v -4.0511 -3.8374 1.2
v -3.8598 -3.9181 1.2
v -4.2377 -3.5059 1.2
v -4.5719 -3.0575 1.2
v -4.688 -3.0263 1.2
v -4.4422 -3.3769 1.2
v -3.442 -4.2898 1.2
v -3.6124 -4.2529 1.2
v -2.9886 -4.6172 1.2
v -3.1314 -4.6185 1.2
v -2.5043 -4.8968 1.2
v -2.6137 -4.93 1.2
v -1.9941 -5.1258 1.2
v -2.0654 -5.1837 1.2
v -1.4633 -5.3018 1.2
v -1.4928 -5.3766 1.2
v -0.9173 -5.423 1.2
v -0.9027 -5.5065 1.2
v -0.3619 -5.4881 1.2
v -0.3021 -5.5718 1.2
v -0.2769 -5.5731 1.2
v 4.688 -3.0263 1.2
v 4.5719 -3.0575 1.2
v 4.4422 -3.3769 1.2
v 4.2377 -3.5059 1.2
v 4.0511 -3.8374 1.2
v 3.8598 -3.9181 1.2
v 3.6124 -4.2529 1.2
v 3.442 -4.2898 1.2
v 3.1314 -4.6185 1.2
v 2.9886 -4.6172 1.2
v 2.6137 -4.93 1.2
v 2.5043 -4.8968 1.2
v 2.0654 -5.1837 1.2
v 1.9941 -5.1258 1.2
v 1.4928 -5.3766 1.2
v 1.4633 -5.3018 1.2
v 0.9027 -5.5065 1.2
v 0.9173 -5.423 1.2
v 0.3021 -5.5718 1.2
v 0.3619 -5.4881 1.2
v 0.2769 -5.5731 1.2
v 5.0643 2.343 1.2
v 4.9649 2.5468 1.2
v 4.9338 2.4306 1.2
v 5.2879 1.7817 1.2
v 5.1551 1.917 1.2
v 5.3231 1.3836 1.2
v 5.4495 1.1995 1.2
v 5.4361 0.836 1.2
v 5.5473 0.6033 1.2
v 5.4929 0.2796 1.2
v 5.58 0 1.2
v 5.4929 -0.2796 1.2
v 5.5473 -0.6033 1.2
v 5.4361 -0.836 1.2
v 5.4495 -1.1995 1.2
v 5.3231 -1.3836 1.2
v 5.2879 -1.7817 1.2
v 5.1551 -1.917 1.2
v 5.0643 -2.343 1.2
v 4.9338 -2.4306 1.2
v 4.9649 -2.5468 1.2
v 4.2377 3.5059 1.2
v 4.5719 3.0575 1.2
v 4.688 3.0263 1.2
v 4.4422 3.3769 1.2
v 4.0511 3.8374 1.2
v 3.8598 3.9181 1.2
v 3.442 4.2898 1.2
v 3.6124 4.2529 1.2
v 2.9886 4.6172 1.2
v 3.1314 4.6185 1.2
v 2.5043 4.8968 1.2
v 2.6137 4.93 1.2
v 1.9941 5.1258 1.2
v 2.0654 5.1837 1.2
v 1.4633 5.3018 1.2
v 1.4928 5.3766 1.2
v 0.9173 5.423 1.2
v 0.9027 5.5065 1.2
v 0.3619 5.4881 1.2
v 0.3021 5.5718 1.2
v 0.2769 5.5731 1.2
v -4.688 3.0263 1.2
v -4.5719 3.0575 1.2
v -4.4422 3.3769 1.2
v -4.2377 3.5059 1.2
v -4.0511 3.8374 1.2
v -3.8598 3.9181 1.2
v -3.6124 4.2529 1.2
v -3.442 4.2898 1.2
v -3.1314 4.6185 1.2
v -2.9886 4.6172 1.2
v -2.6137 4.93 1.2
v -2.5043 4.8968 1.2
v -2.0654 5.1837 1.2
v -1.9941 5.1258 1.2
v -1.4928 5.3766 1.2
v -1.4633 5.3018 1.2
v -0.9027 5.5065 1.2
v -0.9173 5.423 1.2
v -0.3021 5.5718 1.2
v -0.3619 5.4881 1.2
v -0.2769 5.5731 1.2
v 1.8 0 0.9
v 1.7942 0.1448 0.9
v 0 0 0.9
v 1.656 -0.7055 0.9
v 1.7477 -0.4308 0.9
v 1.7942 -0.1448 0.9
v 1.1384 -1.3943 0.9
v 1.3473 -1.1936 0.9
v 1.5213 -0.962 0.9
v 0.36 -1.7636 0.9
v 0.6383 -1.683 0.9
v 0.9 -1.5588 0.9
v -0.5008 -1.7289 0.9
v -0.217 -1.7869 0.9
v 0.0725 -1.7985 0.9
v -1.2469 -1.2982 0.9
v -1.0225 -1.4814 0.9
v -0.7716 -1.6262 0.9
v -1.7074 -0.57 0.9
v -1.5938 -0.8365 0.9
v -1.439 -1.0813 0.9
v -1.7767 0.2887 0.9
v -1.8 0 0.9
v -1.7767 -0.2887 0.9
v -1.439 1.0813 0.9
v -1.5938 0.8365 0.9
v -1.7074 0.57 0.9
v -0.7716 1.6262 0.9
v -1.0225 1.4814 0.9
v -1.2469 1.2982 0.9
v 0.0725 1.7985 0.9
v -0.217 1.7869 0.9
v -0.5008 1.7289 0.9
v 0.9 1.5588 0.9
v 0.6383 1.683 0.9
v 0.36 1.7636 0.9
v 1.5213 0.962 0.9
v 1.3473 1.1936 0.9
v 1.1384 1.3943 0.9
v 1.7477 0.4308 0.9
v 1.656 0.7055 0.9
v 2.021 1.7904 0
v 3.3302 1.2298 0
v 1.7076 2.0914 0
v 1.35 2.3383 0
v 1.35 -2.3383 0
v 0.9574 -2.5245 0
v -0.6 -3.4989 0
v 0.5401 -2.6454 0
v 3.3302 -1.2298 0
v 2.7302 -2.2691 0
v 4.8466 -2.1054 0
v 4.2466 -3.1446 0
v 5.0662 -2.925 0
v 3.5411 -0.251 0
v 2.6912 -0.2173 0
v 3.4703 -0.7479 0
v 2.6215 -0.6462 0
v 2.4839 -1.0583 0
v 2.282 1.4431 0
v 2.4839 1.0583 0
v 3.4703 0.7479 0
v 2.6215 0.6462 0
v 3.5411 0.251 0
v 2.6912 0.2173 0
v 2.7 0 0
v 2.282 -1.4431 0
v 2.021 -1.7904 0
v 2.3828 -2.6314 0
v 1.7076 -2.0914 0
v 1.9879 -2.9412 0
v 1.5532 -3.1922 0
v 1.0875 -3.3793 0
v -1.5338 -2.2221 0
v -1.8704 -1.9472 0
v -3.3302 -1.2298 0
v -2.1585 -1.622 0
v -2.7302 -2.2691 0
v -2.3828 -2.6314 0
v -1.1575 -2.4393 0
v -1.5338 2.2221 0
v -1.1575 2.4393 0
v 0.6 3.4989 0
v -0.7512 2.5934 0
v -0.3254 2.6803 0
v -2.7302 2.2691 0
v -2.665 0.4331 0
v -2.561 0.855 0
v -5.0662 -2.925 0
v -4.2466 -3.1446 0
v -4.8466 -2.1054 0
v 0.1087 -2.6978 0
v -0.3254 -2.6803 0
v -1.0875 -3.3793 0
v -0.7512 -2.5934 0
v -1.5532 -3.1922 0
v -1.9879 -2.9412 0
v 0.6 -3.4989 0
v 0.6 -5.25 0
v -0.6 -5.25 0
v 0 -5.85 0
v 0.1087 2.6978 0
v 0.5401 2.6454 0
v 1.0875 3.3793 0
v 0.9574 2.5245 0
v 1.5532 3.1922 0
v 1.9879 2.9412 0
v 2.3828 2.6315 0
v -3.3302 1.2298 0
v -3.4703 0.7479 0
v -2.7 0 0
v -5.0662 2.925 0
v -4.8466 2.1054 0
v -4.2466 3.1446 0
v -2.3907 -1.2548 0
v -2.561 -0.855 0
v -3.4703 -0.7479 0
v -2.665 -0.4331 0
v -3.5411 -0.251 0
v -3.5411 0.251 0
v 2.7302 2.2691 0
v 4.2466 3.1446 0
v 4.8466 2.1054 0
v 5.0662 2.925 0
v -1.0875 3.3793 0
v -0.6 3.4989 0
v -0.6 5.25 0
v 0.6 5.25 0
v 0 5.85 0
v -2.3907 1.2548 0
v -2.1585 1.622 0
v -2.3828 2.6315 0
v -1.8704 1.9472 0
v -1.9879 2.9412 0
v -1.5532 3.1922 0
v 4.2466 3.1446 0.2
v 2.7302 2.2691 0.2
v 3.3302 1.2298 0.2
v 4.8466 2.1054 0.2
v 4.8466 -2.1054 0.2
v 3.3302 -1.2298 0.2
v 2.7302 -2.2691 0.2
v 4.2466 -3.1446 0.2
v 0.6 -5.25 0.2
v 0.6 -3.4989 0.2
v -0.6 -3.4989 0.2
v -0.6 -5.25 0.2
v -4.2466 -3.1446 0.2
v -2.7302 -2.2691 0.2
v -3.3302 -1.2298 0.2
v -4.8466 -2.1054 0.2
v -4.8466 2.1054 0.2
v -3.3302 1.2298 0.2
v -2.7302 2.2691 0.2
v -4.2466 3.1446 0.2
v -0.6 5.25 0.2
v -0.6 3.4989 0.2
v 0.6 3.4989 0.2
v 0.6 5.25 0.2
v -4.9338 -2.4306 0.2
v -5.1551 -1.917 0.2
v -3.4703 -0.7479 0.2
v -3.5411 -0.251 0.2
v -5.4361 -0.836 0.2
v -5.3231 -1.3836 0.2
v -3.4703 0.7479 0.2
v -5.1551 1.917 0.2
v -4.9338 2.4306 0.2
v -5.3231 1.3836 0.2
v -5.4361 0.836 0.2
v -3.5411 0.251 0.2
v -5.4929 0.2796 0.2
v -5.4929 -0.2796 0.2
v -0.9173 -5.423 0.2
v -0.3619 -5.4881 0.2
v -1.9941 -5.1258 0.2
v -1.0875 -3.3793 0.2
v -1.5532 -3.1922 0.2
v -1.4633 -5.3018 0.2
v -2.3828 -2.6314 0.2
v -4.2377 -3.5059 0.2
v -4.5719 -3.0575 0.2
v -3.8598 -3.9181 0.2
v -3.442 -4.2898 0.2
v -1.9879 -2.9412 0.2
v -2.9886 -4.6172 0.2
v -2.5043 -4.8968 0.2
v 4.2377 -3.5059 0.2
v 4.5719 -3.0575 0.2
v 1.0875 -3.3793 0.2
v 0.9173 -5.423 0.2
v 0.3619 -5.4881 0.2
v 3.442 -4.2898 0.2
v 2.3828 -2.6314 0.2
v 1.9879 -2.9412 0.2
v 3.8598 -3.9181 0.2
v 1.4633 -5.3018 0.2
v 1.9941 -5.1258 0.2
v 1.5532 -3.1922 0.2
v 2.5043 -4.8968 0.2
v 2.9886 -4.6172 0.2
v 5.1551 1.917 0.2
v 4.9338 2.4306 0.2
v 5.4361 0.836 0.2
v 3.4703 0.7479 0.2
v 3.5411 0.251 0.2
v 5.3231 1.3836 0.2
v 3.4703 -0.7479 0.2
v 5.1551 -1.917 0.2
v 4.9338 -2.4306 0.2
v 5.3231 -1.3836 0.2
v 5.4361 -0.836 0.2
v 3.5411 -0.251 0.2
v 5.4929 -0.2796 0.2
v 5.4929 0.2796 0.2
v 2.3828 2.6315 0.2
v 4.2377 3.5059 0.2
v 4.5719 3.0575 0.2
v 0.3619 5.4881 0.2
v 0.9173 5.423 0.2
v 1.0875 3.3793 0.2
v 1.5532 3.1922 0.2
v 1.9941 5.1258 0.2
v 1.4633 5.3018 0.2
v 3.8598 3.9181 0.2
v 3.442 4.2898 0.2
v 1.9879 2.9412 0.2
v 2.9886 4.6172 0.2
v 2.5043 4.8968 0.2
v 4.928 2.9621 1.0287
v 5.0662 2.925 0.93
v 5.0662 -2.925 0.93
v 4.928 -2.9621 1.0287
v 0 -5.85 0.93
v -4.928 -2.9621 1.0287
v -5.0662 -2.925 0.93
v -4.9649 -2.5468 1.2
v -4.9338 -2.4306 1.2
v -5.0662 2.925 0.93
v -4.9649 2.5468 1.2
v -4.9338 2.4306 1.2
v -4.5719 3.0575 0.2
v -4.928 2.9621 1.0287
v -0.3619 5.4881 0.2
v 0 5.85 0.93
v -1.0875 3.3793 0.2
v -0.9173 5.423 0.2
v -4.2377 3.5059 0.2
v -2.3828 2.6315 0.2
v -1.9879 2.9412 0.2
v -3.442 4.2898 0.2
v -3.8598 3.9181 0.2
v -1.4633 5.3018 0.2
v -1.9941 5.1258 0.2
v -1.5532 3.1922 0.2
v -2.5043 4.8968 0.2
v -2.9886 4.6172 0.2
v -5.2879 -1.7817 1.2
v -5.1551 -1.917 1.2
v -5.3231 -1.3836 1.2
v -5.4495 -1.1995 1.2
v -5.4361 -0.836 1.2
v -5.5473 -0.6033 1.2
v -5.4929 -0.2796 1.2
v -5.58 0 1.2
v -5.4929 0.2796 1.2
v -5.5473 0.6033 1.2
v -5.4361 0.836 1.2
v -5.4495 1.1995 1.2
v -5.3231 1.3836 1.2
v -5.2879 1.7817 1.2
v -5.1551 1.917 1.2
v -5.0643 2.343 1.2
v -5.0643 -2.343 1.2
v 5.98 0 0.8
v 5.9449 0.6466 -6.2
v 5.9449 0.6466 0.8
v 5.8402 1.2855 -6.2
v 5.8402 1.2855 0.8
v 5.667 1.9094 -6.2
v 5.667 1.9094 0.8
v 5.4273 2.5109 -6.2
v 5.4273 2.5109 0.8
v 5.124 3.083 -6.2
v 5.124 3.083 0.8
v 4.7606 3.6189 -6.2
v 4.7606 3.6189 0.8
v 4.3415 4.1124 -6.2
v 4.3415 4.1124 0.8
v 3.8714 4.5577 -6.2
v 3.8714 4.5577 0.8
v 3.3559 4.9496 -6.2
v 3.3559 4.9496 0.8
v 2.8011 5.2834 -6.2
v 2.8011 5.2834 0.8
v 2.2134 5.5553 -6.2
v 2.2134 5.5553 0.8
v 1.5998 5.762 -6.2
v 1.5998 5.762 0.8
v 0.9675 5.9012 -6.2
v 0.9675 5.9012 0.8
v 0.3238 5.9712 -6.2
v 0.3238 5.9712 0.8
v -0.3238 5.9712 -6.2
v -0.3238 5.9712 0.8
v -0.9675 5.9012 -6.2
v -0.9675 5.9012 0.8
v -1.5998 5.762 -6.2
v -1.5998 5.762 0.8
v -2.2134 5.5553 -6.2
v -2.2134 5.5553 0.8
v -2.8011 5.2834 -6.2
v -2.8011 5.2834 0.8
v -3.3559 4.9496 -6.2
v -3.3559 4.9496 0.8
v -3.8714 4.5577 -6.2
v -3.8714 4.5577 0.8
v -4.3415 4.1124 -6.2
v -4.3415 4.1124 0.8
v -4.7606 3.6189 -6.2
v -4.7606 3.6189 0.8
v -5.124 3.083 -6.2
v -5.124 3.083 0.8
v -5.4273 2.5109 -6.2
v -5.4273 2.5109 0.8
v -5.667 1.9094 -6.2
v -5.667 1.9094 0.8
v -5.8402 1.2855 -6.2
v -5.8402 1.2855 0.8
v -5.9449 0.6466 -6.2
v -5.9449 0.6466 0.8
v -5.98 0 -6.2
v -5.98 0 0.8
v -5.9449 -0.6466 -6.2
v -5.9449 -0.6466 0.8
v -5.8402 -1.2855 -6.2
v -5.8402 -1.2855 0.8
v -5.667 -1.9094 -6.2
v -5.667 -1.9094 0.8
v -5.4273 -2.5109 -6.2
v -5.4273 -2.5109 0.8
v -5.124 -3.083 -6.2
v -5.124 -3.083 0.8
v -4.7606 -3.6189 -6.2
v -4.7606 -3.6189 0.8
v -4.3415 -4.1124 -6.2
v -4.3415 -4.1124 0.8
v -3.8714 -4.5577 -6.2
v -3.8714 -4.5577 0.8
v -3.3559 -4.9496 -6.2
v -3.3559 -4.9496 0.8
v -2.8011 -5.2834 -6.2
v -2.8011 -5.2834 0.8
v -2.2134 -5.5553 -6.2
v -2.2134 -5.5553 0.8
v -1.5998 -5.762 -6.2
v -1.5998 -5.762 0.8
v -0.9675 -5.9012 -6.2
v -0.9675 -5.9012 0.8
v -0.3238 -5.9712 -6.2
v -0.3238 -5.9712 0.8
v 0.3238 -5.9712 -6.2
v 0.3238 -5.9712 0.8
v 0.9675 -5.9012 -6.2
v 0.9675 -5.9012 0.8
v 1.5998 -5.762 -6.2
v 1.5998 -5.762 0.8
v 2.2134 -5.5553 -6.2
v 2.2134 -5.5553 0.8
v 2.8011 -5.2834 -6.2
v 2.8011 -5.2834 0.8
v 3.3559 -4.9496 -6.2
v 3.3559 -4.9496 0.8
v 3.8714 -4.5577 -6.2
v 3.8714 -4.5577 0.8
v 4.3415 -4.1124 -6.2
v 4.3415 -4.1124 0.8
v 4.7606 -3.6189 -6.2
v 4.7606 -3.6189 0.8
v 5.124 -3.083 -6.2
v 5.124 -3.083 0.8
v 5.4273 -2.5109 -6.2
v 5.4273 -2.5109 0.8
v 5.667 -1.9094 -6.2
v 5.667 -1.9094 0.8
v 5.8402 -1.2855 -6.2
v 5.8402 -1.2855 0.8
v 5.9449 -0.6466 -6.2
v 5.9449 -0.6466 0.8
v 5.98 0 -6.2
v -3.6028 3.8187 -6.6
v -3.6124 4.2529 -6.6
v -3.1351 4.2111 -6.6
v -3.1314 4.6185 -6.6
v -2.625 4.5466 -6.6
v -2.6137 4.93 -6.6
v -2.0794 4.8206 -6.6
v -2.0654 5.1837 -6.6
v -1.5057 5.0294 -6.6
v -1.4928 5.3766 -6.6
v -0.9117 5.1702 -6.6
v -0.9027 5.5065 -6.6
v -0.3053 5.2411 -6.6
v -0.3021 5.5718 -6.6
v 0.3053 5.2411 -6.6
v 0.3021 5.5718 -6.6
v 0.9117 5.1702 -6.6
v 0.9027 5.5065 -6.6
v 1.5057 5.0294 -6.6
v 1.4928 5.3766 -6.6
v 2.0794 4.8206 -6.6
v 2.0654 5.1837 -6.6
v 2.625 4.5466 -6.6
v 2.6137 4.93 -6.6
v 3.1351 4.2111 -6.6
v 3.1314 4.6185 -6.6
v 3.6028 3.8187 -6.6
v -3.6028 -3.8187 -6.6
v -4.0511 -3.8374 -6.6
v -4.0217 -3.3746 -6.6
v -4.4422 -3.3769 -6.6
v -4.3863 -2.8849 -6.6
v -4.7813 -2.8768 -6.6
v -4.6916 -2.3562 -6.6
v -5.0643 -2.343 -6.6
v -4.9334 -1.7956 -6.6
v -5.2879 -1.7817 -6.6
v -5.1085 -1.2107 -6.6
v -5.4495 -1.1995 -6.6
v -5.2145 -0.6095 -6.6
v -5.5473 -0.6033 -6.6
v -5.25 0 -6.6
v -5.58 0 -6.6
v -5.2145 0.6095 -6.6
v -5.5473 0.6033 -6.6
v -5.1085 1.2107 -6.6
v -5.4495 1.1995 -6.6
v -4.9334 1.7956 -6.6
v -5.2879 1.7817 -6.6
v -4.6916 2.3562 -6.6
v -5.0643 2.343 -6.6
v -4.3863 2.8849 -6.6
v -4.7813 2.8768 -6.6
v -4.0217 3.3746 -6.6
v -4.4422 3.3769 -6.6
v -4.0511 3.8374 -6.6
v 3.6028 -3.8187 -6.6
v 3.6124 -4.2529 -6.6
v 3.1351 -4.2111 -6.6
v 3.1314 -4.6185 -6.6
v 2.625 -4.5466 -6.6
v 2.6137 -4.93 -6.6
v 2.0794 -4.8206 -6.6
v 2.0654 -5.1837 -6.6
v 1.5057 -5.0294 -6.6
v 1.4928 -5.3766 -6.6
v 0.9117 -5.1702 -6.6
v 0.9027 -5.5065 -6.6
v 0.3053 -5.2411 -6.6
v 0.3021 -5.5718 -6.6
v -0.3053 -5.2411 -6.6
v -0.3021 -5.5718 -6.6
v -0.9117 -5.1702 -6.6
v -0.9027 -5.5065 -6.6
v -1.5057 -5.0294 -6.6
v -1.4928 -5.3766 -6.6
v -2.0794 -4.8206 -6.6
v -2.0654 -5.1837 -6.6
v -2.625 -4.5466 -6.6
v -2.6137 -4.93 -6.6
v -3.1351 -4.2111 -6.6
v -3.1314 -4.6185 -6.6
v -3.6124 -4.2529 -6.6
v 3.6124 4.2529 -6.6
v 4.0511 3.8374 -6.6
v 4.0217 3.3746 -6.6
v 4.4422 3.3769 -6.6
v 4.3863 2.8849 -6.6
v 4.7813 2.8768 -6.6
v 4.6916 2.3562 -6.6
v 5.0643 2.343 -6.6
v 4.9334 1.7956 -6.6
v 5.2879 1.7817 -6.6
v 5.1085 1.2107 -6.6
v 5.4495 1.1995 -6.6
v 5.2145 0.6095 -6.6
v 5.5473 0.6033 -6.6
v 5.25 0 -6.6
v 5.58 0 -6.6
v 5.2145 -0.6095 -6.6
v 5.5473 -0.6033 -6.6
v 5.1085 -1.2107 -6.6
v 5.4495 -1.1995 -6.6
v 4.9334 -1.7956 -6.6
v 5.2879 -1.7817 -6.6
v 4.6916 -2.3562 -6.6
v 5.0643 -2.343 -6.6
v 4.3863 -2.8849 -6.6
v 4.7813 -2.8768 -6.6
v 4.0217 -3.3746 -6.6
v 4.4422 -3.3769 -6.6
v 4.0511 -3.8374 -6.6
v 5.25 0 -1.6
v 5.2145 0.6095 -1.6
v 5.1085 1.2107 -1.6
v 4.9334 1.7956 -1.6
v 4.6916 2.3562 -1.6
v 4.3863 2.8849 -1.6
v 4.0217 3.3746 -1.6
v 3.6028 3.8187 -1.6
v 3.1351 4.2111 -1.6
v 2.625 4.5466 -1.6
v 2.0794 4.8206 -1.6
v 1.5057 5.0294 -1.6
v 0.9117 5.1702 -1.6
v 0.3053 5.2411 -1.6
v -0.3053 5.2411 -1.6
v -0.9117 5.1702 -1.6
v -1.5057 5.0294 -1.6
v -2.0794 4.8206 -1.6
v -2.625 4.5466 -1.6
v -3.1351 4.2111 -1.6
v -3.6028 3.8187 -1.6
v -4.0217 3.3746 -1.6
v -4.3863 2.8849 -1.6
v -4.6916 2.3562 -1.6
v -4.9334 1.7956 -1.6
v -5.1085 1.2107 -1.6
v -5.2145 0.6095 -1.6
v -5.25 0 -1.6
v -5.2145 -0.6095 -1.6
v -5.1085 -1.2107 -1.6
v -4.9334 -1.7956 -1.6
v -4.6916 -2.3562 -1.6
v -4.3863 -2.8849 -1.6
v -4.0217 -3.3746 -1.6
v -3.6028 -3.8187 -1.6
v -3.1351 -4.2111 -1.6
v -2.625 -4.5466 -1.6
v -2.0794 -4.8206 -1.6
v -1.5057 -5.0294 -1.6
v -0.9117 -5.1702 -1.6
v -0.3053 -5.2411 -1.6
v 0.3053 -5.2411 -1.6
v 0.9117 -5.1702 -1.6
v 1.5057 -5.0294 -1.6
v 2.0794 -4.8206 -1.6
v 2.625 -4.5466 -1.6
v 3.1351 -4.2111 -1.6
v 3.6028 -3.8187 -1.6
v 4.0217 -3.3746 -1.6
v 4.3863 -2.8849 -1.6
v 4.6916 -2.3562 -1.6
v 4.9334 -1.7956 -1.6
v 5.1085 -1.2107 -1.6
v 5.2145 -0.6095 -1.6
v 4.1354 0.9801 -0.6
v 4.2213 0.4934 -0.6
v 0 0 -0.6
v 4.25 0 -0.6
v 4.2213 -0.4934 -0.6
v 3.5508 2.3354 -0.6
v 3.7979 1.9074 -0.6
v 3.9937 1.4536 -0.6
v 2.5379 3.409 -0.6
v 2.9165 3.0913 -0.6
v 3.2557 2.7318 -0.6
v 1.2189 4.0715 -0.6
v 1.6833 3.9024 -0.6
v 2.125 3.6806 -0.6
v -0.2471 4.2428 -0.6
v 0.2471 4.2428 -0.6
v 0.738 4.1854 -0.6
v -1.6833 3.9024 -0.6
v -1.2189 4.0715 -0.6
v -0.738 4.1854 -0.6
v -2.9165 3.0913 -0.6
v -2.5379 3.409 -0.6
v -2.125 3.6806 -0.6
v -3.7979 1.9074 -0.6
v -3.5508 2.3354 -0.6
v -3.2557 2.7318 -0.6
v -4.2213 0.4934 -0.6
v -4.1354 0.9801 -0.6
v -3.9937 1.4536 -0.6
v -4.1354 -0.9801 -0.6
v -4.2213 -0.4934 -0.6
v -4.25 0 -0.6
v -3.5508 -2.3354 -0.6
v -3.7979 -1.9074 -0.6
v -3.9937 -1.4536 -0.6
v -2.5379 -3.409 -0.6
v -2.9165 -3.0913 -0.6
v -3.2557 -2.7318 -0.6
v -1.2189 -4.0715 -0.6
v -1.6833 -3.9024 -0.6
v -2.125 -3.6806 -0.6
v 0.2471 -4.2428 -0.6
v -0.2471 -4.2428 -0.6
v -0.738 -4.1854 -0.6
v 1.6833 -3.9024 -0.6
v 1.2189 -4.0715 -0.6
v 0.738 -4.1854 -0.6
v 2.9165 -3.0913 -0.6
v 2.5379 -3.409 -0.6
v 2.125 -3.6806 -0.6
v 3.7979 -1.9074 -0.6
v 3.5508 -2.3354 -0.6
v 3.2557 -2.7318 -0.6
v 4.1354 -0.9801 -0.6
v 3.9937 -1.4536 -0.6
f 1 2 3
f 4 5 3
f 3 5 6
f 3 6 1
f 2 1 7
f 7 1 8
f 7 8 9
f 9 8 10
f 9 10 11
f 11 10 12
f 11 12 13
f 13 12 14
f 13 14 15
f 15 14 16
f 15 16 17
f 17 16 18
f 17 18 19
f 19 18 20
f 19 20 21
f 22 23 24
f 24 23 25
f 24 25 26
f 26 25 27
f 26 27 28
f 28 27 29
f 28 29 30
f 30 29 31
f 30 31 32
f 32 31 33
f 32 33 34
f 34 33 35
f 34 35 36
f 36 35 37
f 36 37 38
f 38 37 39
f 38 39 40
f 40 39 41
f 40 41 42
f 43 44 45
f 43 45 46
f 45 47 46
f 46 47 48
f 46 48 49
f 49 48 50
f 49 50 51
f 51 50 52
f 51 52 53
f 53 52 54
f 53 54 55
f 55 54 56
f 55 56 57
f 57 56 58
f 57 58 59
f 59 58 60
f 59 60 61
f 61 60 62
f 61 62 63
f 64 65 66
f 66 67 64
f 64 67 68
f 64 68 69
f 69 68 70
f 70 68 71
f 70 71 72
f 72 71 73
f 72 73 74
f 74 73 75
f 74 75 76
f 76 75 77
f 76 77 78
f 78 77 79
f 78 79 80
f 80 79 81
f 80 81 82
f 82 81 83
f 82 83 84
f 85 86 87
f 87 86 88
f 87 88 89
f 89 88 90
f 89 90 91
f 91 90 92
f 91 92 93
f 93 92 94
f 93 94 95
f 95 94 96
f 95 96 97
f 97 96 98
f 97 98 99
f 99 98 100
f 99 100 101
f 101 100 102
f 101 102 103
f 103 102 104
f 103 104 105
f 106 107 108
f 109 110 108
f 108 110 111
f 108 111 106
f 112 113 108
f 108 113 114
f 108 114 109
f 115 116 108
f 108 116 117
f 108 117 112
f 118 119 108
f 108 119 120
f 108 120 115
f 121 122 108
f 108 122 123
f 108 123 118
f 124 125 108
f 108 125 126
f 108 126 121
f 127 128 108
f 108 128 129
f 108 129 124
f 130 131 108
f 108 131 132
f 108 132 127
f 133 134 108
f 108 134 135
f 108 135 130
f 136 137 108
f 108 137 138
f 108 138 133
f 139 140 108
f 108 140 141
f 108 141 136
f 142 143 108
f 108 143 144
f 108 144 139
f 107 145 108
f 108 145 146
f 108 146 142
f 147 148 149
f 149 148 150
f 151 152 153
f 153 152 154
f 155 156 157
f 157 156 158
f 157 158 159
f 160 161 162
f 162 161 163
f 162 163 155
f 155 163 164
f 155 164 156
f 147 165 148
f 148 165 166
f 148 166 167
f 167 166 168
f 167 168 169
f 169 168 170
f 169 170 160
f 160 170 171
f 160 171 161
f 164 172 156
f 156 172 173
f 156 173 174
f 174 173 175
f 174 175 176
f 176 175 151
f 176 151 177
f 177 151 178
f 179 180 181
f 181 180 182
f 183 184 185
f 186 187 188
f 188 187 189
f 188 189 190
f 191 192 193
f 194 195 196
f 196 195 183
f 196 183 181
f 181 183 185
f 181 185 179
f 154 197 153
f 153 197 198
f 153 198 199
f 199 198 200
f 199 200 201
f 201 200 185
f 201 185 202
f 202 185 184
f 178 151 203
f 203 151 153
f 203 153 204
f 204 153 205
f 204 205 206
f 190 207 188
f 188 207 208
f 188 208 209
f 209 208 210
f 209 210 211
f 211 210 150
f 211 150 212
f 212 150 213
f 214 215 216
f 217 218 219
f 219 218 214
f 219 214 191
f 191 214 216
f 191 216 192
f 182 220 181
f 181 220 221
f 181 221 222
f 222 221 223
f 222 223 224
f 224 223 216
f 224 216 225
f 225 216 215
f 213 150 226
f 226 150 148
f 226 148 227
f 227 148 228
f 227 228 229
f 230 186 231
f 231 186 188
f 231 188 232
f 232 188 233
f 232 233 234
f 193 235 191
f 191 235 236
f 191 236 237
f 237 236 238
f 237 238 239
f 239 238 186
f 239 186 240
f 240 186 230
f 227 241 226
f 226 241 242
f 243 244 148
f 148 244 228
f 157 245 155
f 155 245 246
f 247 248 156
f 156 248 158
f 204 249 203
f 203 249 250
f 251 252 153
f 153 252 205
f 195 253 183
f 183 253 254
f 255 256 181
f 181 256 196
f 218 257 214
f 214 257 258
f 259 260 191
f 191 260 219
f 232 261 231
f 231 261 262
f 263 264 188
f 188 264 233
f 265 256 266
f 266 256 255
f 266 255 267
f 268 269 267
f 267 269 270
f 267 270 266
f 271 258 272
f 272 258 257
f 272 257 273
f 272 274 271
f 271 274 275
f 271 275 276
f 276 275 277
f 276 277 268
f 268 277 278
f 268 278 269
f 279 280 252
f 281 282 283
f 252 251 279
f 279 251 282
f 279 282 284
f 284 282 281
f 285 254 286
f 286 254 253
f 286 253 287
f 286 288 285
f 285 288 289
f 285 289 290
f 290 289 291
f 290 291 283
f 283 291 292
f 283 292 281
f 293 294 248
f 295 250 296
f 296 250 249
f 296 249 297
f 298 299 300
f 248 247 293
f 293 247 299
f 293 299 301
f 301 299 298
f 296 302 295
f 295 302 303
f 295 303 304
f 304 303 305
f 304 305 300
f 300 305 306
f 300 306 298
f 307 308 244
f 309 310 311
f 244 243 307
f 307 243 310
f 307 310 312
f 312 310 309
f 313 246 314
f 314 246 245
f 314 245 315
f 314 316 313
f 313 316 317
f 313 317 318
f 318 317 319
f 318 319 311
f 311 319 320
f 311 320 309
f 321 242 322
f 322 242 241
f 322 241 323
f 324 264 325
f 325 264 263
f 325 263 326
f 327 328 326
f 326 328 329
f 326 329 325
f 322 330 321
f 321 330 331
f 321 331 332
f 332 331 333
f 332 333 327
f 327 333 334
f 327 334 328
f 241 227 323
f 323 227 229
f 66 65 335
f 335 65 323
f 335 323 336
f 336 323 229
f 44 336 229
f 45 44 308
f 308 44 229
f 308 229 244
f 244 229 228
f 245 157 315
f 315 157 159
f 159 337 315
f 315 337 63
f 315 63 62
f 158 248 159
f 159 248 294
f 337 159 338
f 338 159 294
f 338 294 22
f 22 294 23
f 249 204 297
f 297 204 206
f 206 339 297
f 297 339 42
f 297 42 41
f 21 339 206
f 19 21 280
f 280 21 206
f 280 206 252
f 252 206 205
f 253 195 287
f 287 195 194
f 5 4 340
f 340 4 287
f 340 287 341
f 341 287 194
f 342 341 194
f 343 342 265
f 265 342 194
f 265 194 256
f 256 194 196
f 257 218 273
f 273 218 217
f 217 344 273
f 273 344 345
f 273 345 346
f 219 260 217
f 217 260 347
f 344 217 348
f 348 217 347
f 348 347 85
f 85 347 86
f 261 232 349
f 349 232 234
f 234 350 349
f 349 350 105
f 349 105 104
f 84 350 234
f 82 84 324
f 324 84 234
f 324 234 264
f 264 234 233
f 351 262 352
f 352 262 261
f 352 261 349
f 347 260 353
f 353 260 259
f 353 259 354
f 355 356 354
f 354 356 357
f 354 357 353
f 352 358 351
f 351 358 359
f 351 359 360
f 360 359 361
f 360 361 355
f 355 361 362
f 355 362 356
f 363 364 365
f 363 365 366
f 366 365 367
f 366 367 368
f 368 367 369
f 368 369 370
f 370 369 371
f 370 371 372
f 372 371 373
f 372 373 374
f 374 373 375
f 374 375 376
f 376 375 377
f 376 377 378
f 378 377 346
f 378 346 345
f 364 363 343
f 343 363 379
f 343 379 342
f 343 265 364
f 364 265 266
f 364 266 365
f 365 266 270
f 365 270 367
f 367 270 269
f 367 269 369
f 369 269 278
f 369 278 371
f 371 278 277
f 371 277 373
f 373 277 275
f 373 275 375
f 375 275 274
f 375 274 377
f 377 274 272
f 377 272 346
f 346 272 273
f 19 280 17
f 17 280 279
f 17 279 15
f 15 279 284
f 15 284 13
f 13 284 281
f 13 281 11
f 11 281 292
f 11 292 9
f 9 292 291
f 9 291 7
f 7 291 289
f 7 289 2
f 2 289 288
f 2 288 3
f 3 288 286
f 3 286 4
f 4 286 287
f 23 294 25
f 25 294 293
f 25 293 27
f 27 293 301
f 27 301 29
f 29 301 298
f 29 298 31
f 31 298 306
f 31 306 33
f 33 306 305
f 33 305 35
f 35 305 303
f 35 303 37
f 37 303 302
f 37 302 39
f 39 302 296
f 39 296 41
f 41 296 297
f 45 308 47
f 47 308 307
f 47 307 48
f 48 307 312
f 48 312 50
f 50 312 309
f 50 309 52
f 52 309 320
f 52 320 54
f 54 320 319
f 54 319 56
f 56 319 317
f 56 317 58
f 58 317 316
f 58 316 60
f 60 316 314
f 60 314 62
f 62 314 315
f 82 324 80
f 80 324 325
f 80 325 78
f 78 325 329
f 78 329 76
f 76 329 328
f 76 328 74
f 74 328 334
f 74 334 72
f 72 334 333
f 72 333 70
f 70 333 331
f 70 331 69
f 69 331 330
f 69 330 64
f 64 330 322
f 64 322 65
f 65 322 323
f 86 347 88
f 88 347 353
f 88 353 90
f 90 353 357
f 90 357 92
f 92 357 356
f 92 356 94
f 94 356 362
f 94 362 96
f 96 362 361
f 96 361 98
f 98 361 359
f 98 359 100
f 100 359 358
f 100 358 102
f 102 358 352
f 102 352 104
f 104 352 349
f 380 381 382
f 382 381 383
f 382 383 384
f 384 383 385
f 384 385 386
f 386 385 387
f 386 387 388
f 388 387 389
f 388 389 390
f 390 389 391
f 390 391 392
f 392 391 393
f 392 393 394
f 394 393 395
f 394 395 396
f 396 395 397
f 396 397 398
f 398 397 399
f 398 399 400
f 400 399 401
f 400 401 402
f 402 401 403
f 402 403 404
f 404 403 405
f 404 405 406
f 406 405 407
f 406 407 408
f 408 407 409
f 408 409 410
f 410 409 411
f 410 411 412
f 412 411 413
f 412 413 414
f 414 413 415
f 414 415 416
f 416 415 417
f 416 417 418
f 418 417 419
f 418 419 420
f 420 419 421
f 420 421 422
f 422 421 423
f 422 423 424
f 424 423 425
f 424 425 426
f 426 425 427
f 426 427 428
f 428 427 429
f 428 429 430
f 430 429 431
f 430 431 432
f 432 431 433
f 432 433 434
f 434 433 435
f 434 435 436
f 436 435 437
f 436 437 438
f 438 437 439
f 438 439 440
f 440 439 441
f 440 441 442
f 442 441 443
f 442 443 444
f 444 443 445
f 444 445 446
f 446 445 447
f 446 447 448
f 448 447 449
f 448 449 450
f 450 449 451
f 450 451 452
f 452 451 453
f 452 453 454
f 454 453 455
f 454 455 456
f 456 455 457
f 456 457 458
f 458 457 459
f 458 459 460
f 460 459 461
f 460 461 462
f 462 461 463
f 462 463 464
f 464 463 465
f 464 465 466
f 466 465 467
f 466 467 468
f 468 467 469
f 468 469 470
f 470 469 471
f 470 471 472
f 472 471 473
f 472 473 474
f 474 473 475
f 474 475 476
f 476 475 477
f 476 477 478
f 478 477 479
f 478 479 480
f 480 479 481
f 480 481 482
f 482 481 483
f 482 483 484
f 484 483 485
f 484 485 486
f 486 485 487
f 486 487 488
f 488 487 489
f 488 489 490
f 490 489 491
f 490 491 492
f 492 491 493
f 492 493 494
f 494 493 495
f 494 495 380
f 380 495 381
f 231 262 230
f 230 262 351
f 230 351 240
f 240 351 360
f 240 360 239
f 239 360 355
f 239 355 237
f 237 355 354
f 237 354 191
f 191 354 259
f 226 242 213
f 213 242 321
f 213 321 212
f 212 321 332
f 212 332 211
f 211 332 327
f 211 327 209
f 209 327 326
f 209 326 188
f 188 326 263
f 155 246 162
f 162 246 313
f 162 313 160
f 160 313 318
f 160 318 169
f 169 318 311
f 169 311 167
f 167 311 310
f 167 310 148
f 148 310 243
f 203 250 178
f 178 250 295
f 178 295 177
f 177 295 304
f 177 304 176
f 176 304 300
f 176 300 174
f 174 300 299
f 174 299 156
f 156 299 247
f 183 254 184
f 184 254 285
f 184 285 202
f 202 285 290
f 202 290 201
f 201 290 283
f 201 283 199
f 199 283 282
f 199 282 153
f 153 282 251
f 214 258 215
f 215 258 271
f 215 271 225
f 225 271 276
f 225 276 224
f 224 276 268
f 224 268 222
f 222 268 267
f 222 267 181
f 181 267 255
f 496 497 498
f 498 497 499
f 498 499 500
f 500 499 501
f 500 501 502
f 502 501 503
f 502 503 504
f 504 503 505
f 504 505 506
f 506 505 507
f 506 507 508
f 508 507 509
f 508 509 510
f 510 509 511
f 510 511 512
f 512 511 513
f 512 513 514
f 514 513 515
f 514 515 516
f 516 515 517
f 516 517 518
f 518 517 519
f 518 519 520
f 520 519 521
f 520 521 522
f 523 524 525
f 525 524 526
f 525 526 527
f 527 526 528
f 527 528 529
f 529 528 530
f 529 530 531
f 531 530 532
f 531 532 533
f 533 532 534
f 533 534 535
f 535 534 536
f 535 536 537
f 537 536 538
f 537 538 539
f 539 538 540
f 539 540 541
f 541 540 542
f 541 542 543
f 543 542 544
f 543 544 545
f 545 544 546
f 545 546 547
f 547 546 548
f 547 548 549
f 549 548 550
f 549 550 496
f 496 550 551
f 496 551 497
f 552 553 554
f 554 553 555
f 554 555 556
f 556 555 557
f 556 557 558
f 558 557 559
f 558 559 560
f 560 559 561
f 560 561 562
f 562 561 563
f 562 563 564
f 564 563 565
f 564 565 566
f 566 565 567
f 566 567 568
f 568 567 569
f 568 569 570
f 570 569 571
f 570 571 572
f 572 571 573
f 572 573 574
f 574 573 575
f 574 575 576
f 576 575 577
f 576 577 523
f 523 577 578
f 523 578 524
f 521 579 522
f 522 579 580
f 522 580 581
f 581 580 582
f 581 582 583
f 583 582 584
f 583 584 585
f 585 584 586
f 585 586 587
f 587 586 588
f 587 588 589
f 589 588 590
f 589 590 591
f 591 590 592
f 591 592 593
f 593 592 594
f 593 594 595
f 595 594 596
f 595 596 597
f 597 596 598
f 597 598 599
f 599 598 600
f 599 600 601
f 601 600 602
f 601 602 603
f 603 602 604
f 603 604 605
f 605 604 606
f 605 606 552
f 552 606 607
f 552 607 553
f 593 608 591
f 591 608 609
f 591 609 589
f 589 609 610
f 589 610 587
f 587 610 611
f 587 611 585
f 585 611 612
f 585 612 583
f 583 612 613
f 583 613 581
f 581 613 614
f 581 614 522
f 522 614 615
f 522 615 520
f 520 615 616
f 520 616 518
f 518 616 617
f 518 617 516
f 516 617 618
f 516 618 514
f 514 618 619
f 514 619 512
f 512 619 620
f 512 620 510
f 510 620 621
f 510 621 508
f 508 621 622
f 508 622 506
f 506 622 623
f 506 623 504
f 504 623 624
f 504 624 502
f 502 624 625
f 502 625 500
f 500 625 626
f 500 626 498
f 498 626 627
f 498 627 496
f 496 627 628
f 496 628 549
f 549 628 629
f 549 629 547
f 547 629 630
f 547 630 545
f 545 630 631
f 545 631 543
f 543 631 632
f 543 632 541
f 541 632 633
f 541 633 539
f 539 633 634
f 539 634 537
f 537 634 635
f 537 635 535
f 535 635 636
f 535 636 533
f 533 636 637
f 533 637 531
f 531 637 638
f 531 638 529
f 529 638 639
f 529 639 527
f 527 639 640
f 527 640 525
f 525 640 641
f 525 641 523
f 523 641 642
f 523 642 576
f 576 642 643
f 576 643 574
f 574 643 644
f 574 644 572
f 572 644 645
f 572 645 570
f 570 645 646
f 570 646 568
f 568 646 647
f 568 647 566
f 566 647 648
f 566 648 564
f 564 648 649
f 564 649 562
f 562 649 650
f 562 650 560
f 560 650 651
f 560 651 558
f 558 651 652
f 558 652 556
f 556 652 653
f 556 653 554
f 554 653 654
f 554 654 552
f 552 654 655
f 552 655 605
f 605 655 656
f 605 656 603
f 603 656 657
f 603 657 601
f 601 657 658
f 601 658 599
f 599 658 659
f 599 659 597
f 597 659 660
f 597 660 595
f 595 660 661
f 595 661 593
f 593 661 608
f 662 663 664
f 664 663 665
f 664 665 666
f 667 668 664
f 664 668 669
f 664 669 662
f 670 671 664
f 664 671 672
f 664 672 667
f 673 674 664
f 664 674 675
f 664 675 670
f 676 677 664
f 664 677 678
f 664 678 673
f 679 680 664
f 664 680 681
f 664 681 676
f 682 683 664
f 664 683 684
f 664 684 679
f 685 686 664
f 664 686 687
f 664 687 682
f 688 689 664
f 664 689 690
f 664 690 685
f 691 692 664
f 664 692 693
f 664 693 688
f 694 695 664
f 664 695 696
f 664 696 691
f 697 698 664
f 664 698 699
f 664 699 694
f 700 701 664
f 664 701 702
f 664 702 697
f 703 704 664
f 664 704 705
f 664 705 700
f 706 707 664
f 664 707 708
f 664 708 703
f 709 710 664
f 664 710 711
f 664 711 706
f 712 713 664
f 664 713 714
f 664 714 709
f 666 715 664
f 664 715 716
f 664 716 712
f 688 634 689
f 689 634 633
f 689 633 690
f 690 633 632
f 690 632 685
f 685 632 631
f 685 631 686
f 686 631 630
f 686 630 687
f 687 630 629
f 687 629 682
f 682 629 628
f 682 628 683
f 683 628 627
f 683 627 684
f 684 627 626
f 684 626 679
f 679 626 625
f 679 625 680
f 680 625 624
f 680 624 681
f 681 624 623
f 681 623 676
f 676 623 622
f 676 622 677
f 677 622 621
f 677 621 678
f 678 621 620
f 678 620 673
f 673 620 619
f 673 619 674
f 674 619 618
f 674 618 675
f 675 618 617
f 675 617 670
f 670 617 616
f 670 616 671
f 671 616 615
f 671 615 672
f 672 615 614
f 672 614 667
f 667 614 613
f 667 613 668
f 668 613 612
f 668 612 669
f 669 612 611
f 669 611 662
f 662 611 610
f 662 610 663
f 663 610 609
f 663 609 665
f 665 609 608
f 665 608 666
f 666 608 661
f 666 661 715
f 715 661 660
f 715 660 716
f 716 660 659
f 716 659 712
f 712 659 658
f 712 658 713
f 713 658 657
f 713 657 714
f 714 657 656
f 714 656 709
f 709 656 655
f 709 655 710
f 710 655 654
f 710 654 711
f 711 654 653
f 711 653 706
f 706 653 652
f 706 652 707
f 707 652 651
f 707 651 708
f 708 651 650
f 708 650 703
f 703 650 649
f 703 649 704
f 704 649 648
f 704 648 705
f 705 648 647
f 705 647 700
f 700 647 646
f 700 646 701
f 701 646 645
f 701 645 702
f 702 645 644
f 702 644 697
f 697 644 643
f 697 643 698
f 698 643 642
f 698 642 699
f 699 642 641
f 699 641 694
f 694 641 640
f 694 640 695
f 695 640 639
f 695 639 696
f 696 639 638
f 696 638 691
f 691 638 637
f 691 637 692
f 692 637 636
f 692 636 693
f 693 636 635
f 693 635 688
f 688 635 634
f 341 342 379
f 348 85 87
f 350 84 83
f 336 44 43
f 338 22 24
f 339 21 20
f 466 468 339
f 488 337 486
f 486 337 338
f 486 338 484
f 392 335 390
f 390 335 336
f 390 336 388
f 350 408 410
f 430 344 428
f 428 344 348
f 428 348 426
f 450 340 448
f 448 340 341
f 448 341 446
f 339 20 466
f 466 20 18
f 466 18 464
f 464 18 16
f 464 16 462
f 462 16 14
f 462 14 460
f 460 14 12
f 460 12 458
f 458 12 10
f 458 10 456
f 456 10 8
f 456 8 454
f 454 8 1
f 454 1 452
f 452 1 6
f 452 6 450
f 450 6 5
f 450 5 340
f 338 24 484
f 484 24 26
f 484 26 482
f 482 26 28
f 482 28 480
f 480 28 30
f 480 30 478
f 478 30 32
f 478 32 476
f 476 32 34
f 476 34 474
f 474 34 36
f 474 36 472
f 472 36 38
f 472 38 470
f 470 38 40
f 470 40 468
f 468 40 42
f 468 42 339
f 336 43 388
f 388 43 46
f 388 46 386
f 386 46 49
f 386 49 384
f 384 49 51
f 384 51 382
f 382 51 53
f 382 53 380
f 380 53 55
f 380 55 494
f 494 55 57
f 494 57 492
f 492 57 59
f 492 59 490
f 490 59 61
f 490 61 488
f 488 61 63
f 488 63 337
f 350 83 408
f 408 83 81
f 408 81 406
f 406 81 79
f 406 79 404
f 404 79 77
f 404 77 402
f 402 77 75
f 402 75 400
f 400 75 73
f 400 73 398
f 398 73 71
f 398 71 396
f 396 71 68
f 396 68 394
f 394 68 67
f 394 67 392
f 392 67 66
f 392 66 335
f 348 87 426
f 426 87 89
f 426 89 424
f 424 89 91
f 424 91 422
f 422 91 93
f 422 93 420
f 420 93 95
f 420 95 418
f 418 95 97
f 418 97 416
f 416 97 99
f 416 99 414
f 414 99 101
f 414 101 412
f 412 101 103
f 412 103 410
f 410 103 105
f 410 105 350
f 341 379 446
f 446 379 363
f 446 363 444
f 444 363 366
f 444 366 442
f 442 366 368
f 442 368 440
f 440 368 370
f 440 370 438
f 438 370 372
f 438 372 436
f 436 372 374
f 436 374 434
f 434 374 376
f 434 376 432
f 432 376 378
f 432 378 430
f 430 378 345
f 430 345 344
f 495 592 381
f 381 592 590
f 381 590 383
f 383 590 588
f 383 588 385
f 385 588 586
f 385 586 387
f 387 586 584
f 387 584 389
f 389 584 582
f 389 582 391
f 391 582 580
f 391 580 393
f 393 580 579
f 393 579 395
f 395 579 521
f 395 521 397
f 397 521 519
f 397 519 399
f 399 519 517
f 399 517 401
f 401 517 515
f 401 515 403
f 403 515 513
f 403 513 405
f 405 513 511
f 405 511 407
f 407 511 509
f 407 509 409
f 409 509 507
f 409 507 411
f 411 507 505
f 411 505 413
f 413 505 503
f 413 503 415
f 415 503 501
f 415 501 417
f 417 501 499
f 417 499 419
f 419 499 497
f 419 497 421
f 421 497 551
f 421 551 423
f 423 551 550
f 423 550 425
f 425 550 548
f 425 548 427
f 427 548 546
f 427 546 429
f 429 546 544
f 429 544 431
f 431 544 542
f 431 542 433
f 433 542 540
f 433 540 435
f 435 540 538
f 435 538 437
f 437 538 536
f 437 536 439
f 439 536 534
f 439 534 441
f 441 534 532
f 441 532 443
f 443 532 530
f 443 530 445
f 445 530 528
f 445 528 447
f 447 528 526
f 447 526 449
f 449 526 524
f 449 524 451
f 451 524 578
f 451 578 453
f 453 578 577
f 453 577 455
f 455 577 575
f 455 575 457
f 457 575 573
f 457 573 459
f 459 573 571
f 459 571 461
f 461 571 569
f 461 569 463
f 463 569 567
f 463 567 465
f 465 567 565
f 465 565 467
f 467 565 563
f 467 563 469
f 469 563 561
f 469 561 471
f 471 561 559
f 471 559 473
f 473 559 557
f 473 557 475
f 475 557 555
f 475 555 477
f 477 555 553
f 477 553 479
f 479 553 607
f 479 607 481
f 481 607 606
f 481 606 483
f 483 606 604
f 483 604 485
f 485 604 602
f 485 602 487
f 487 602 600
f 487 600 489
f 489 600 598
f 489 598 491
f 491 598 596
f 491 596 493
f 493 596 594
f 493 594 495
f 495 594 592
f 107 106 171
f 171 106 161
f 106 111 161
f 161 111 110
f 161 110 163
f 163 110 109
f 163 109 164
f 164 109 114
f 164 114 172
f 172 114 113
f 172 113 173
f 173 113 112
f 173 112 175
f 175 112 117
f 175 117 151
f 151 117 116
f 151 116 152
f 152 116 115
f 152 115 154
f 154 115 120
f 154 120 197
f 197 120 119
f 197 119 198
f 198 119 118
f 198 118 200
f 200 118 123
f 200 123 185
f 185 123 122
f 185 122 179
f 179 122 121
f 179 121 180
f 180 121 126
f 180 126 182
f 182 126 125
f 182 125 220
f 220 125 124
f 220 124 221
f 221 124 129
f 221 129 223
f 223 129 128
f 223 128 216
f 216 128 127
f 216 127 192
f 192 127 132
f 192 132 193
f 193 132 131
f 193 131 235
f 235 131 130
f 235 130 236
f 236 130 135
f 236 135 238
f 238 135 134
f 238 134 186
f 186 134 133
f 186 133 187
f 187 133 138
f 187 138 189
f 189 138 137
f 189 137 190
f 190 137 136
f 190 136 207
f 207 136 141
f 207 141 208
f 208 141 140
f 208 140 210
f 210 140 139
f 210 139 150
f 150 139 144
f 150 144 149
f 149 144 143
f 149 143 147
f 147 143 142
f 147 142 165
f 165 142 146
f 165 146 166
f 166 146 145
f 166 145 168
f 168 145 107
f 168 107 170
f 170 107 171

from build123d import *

# Parameters (mm, degrees)
SKETCH_1_R          = 5.98
EXTRUDE_1_DEPTH     = 0.2
SKETCH_2_R          = 2.8
EXTRUDE_2_DEPTH     = 0.9
SKETCH_3_R          = 5.98
EXTRUDE_3_DEPTH     = 1
EXTRUDE_START       = -0.6
SKETCH_4_R          = 5.98
EXTRUDE_4_DEPTH     = 0.6
CUT_EXTRUDE_START   = -0.2
SKETCH_6_R          = 3.55
SKETCH_6_R_2        = 2.8
CUT_EXTRUDE_2_DEPTH = 0.2
EXTRUDE_START_2     = 6
SKETCH_7_R          = 5.98
SKETCH_7_R_2        = 5.25
EXTRUDE_5_DEPTH     = 6
CHAMFER_4_SIZE      = 1
CHAMFER_5_SIZE      = 0.4
CHAMFER_6_SIZE      = 0.4
CHAMFER_7_SIZE      = 1


with BuildPart() as part:
    # 스케치1 → 보스-돌출1 (new body)
    with BuildSketch(Plane.XY):
        Circle(SKETCH_1_R)
        with BuildLine():
            Line((-0.6, 5.25), (0, 5.85))
            Line((0, 5.85), (0.6, 5.25))
            Line((0.6, 5.25), (0.6, 1.670516387))
            ThreePointArc((0.6, 1.670516387), (0.8875, 1.537195092), (1.146709629, 1.354873436))
            Line((1.146709629, 1.354873436), (4.24663337, 3.144615242))
            Line((4.24663337, 3.144615242), (5.066248612, 2.925))
            Line((5.066248612, 2.925), (4.84663337, 2.105384758))
            Line((4.84663337, 2.105384758), (1.746709629, 0.315642951))
            ThreePointArc((1.746709629, 0.315642951), (1.76791326, 0.158454108), (1.775, 0))
            ThreePointArc((1.775, 0), (1.76791326, -0.158454108), (1.746709629, -0.315642951))
            Line((1.746709629, -0.315642951), (4.84663337, -2.105384758))
            Line((4.84663337, -2.105384758), (5.066248612, -2.925))
            Line((5.066248612, -2.925), (4.24663337, -3.144615242))
            Line((4.24663337, -3.144615242), (1.146709629, -1.354873436))
            ThreePointArc((1.146709629, -1.354873436), (0.8875, -1.537195092), (0.6, -1.670516387))
            Line((0.6, -1.670516387), (0.6, -5.25))
            Line((0.6, -5.25), (0, -5.85))
            Line((0, -5.85), (-0.6, -5.25))
            Line((-0.6, -5.25), (-0.6, -1.670516387))
            ThreePointArc((-0.6, -1.670516387), (-0.8875, -1.537195092), (-1.146709629, -1.354873436))
            Line((-1.146709629, -1.354873436), (-4.24663337, -3.144615242))
            Line((-4.24663337, -3.144615242), (-5.066248612, -2.925))
            Line((-5.066248612, -2.925), (-4.84663337, -2.105384758))
            Line((-4.84663337, -2.105384758), (-1.746709629, -0.315642951))
            ThreePointArc((-1.746709629, -0.315642951), (-1.775, 0), (-1.746709629, 0.315642951))
            Line((-1.746709629, 0.315642951), (-4.84663337, 2.105384758))
            Line((-4.84663337, 2.105384758), (-5.066248612, 2.925))
            Line((-5.066248612, 2.925), (-4.24663337, 3.144615242))
            Line((-4.24663337, 3.144615242), (-1.146709629, 1.354873436))
            ThreePointArc((-1.146709629, 1.354873436), (-0.8875, 1.537195092), (-0.6, 1.670516387))
            Line((-0.6, 1.670516387), (-0.6, 5.25))
        make_face(mode=Mode.SUBTRACT)
    extrude(amount=EXTRUDE_1_DEPTH)

    # 스케치3 → 보스-돌출3 (add)
    with BuildSketch(Plane.XY.offset(0.2)):
        Circle(SKETCH_3_R)
        with BuildLine():
            Line((-4.933776406, -2.430606997), (-5.066248612, -2.925))
            Line((-5.066248612, -2.925), (-4.571855609, -3.057472206))
            ThreePointArc((-4.571855609, -3.057472206), (-2.75, -4.763139721), (-0.361920797, -5.488079203))
            Line((-0.361920797, -5.488079203), (0, -5.85))
            Line((0, -5.85), (0.361920797, -5.488079203))
            ThreePointArc((0.361920797, -5.488079203), (2.75, -4.763139721), (4.571855609, -3.057472206))
            Line((4.571855609, -3.057472206), (5.066248612, -2.925))
            Line((5.066248612, -2.925), (4.933776406, -2.430606997))
            ThreePointArc((4.933776406, -2.430606997), (5.5, 0), (4.933776406, 2.430606997))
            Line((4.933776406, 2.430606997), (5.066248612, 2.925))
            Line((5.066248612, 2.925), (4.571855609, 3.057472206))
            ThreePointArc((4.571855609, 3.057472206), (2.75, 4.763139721), (0.361920797, 5.488079203))
            Line((0.361920797, 5.488079203), (0, 5.85))
            Line((0, 5.85), (-0.361920797, 5.488079203))
            ThreePointArc((-0.361920797, 5.488079203), (-2.75, 4.763139721), (-4.571855609, 3.057472206))
            Line((-4.571855609, 3.057472206), (-5.066248612, 2.925))
            Line((-5.066248612, 2.925), (-4.933776406, 2.430606997))
            ThreePointArc((-4.933776406, 2.430606997), (-5.5, 0), (-4.933776406, -2.430606997))
        make_face(mode=Mode.SUBTRACT)
    extrude(amount=EXTRUDE_3_DEPTH)



with BuildPart() as body_2:
    # 스케치2 → 보스-돌출2 (new body)
    with BuildSketch(Plane.XY):
        Circle(SKETCH_2_R)
    extrude(amount=EXTRUDE_2_DEPTH)


with BuildPart() as part_1:
    add(part.part)

    add(body_2.part)  # 보스-돌출4 merges body 2
    # 스케치4 → 보스-돌출4 (add)
    with BuildSketch(Plane.XY.offset(EXTRUDE_START)):
        Circle(SKETCH_4_R)
    extrude(amount=EXTRUDE_4_DEPTH)

    # 스케치6 → 컷-돌출2 (cut)
    with BuildSketch(Plane.XY.offset(0.2).offset(CUT_EXTRUDE_START)):
        Circle(SKETCH_6_R)
        Circle(SKETCH_6_R_2, mode=Mode.SUBTRACT)
    extrude(amount=CUT_EXTRUDE_2_DEPTH, mode=Mode.SUBTRACT)

    # 스케치7 → 보스-돌출5 (add)
    with BuildSketch(Plane(origin=(0, 0, -0.6), x_dir=(-1, 0, 0), z_dir=(0, 0, -1)).offset(EXTRUDE_START_2)):
        with Locations(Location((0, 0, 0), (0, 0, 180))):
            Circle(SKETCH_7_R)
        Circle(SKETCH_7_R_2, mode=Mode.SUBTRACT)
    extrude(amount=-EXTRUDE_5_DEPTH)

    # 모따기4
    chamfer_4_edges = [part_1.edges().sort_by_distance(p)[0] for p in [
        (5.25, 0, -0.6),
    ]]
    chamfer(chamfer_4_edges, length=CHAMFER_4_SIZE)

    # 모따기5
    # the kernel refuses this chamfer: 0.4 mm, written as the material it takes off along each edge
    with BuildSketch(Plane(origin=(0, 0, 1.2), x_dir=(1, 0, 0), z_dir=(0, -1, 0))) as chamfer_5_piece_1:
        Polygon((5.98, -CHAMFER_5_SIZE), (5.98 - CHAMFER_5_SIZE, 0), (5.98, 0), align=None)
    revolve(axis=Axis((0, 0, 1.2), (0, 0, 1)), mode=Mode.SUBTRACT)

    # 모따기6
    chamfer_6_edges = [part_1.edges().sort_by_distance(p)[0] for p in [
        (-5.98, 0, -6.6),
    ]]
    chamfer(chamfer_6_edges, length=CHAMFER_6_SIZE)

    # 모따기7
    # the kernel refuses this chamfer: 1 mm, written as the material it takes off along each edge
    with BuildSketch(Plane(origin=(0, 0, 0.9), x_dir=(1, 0, 0), z_dir=(0, -1, 0))) as chamfer_7_piece_1_section:
        Polygon((2.8, -CHAMFER_7_SIZE), (2.8 - CHAMFER_7_SIZE, 0), (2.8, 0), align=None)
    chamfer_7_piece_1 = revolve(axis=Axis((0, 0, 0.9), (0, 0, 1)), mode=Mode.PRIVATE)
    chamfer_7_piece_1 = split(chamfer_7_piece_1, bisect_by=Plane(origin=(-2.250209939, 0, 0), z_dir=(0, 0, 1)), keep=Keep.TOP, mode=Mode.PRIVATE)
    add(chamfer_7_piece_1, mode=Mode.SUBTRACT)


solid = part_1.part
